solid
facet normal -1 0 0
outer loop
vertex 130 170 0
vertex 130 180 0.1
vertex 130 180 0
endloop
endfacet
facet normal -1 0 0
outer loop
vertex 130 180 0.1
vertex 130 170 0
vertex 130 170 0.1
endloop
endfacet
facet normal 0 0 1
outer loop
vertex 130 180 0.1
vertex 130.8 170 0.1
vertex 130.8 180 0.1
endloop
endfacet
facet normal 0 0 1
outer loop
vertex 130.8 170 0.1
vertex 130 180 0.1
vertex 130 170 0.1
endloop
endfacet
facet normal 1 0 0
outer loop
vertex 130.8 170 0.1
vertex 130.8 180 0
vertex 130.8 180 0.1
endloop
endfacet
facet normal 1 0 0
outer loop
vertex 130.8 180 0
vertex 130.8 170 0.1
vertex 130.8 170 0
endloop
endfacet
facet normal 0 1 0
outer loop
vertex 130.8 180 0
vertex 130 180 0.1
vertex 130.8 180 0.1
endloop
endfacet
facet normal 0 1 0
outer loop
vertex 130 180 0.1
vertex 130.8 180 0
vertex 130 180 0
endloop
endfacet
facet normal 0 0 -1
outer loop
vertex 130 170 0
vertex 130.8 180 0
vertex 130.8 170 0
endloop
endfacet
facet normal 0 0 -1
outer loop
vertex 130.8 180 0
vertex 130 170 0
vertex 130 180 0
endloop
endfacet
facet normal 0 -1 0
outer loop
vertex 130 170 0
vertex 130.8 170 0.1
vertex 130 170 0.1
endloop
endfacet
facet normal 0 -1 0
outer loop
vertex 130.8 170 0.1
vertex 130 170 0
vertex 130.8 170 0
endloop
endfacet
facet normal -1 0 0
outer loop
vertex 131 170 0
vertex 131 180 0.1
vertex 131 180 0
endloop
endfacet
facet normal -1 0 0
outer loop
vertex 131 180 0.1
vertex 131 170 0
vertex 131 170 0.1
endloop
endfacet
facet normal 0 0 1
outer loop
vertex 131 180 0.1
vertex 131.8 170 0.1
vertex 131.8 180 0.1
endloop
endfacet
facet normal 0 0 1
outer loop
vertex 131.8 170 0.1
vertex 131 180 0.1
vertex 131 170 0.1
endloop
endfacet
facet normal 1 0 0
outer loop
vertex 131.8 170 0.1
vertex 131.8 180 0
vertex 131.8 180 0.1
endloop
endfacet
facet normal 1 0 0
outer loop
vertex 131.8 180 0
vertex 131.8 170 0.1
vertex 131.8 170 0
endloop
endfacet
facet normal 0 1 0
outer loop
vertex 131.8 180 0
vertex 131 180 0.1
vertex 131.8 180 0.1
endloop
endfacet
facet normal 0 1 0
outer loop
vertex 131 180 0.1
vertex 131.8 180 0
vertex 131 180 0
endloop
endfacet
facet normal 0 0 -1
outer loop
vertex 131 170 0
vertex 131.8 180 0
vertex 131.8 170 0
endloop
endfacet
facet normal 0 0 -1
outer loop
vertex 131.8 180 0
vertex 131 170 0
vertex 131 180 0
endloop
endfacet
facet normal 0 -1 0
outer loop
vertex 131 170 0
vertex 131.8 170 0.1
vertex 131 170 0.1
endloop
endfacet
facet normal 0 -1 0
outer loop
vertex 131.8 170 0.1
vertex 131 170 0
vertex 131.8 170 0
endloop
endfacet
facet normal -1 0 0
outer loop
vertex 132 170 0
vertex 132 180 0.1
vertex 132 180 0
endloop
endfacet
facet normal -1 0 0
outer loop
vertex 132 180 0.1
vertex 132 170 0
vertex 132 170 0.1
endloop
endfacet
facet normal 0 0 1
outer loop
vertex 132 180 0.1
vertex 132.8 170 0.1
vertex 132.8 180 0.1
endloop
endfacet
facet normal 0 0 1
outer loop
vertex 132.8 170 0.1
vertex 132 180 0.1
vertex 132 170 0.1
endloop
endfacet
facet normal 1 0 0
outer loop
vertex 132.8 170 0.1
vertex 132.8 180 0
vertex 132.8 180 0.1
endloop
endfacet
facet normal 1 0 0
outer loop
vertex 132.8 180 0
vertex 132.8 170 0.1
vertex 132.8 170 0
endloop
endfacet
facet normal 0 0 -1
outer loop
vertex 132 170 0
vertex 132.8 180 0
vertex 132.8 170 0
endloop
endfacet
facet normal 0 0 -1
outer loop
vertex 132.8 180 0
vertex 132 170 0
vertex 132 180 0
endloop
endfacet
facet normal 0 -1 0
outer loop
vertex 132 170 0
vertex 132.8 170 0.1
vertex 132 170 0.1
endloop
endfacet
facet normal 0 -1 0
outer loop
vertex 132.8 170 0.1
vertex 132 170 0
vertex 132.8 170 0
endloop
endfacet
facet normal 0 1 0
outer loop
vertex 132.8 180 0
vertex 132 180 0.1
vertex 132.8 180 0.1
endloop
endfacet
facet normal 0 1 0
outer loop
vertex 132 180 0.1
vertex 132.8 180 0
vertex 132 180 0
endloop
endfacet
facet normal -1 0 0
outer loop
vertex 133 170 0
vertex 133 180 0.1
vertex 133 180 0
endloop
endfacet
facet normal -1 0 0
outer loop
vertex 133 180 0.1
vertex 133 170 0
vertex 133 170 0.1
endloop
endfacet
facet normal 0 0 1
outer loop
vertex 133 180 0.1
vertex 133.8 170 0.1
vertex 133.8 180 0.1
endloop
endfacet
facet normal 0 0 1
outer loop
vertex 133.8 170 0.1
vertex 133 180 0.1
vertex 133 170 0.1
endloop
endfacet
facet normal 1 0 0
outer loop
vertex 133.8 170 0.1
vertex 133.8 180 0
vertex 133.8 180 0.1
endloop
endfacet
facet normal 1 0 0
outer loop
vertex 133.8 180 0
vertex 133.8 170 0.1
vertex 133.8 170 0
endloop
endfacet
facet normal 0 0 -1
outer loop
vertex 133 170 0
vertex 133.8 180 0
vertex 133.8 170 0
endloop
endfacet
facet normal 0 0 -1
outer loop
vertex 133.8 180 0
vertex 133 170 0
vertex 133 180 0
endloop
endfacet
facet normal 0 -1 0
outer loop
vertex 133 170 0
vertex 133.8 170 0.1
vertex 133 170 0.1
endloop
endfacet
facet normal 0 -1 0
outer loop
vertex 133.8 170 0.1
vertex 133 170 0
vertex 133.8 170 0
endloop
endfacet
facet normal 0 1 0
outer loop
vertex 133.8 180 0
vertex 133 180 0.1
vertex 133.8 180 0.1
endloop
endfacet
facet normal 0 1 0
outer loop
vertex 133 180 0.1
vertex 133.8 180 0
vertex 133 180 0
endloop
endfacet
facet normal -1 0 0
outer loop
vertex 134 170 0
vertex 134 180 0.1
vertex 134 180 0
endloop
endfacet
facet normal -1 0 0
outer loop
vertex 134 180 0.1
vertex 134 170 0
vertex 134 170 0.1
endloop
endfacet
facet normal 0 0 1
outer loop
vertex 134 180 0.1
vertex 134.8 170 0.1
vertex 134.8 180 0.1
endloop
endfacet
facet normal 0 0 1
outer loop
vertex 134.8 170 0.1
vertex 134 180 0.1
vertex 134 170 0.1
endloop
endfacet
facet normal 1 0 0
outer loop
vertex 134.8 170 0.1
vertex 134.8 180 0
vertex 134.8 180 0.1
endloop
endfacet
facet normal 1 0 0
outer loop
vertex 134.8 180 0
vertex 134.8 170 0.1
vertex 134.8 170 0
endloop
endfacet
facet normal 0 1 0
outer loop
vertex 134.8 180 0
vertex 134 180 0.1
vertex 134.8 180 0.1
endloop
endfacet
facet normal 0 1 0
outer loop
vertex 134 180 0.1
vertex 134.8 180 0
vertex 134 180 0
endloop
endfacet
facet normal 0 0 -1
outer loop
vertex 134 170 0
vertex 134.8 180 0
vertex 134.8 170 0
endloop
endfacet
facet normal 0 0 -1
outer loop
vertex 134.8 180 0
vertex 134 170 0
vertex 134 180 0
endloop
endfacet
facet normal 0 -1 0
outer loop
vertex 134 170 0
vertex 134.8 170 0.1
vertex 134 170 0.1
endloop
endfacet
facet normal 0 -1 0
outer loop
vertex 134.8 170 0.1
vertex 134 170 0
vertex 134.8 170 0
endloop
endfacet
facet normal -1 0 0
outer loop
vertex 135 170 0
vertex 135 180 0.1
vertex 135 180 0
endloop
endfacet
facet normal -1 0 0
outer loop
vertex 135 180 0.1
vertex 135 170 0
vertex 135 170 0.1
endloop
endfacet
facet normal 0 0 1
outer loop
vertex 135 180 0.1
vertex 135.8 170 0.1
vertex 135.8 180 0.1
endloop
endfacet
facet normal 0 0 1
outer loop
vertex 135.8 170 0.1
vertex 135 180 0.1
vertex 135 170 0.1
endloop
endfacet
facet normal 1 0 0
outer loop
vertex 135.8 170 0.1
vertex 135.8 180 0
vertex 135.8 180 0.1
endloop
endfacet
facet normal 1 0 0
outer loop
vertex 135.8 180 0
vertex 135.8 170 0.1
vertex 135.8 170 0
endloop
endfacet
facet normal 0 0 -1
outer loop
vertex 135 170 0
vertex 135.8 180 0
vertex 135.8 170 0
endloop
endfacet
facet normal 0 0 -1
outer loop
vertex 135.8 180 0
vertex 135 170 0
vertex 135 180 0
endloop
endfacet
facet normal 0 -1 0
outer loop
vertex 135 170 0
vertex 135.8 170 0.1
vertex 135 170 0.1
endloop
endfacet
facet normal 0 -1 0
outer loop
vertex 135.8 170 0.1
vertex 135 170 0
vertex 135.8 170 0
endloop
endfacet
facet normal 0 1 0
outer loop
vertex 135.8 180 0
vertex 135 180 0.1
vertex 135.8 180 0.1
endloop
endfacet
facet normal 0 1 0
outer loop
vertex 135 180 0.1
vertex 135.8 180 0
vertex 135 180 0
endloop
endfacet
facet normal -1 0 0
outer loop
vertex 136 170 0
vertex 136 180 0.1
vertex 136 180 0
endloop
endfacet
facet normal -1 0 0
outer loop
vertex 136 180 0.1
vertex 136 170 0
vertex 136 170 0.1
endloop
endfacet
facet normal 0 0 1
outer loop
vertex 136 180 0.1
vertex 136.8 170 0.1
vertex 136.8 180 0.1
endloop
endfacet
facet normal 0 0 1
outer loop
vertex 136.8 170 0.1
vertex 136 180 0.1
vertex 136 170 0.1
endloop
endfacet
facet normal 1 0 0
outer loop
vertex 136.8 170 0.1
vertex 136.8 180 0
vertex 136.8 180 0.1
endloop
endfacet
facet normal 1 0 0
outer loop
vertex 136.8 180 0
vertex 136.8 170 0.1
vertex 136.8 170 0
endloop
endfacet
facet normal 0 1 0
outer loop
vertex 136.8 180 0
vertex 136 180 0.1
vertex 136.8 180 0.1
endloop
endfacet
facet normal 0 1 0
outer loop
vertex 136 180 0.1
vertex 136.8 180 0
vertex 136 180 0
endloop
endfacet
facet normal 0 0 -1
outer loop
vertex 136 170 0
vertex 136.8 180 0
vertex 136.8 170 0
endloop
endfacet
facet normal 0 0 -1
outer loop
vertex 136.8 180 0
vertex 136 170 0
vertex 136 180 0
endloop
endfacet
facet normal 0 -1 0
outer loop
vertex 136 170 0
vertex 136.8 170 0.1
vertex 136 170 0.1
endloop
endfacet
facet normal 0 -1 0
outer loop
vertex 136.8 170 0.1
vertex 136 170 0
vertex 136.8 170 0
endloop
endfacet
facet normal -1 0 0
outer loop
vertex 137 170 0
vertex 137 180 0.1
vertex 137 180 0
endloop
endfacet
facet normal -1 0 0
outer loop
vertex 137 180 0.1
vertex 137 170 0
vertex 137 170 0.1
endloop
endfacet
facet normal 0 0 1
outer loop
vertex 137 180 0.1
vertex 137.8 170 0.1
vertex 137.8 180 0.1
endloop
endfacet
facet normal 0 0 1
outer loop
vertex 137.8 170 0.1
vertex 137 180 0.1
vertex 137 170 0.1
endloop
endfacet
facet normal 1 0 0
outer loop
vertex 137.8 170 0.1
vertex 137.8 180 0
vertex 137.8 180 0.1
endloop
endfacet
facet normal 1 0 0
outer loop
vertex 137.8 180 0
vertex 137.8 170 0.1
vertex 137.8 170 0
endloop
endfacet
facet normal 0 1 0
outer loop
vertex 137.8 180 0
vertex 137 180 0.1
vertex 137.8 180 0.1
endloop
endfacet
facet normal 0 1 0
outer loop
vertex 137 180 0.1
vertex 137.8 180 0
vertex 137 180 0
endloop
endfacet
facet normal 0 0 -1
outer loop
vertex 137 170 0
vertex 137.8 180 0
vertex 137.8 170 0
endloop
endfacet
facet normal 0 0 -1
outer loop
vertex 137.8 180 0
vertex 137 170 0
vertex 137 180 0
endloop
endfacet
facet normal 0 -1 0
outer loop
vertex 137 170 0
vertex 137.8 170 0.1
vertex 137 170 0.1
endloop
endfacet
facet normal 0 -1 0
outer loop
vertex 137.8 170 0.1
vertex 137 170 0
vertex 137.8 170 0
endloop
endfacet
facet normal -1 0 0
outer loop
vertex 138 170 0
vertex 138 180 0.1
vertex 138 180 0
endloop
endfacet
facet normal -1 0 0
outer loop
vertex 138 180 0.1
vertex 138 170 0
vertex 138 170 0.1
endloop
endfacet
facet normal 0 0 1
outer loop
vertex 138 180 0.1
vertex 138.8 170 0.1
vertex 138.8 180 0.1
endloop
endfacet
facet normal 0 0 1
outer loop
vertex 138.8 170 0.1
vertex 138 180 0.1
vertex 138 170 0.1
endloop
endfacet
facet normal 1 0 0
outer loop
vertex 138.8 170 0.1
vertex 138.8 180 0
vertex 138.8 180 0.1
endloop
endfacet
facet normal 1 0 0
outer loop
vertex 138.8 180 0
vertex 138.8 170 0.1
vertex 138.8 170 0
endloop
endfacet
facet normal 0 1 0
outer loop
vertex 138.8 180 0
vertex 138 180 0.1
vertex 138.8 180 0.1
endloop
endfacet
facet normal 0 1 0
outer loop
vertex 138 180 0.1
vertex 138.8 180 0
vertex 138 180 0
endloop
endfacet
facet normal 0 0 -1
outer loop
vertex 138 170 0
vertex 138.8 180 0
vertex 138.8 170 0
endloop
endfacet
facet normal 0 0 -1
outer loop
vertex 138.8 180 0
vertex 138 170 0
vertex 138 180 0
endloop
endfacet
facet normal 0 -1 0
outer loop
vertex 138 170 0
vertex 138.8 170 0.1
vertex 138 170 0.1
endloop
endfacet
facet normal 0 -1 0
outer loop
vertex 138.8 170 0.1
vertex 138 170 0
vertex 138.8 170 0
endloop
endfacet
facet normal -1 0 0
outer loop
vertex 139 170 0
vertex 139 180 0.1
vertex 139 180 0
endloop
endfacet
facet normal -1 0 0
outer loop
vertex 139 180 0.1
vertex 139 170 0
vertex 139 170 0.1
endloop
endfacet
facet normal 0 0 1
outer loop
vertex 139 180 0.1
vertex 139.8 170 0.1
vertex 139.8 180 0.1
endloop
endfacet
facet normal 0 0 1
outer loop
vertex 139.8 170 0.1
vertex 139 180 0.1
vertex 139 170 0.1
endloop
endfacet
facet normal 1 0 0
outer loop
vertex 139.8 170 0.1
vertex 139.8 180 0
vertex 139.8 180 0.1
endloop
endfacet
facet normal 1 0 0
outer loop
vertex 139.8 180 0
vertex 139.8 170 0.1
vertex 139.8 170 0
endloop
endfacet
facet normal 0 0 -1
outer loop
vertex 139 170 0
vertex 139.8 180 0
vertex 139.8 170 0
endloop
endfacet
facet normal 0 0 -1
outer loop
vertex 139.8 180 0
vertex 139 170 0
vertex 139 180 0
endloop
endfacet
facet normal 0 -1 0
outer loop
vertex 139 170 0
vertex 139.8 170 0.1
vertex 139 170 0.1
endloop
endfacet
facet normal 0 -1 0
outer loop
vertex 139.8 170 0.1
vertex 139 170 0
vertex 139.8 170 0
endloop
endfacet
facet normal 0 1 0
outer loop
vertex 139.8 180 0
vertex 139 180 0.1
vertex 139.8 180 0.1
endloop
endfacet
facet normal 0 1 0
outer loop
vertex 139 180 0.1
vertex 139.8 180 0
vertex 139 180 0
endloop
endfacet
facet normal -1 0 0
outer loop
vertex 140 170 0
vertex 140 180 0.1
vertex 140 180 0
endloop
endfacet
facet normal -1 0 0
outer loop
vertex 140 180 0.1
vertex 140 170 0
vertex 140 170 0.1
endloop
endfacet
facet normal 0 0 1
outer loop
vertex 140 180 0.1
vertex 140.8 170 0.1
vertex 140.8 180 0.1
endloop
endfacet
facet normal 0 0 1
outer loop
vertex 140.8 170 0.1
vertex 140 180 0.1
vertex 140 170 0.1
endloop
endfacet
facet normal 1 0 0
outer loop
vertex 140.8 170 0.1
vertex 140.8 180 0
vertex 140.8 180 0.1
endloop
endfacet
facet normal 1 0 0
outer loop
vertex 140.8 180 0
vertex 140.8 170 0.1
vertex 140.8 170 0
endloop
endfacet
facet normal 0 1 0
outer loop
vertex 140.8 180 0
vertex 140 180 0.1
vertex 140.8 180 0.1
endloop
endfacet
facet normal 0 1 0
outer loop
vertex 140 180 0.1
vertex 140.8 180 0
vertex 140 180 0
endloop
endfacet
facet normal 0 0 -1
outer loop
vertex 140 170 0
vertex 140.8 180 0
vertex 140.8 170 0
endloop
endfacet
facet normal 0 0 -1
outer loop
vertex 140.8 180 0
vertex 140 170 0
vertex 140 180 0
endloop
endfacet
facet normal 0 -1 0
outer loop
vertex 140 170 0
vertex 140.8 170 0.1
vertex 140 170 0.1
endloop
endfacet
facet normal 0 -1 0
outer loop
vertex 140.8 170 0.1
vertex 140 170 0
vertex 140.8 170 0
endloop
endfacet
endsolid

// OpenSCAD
translate([10+120,10+160,0])
        for (i = [0 : 10]){
            translate([i,0,0])
                cube(size = [0.8,10,0.1]);
    }
